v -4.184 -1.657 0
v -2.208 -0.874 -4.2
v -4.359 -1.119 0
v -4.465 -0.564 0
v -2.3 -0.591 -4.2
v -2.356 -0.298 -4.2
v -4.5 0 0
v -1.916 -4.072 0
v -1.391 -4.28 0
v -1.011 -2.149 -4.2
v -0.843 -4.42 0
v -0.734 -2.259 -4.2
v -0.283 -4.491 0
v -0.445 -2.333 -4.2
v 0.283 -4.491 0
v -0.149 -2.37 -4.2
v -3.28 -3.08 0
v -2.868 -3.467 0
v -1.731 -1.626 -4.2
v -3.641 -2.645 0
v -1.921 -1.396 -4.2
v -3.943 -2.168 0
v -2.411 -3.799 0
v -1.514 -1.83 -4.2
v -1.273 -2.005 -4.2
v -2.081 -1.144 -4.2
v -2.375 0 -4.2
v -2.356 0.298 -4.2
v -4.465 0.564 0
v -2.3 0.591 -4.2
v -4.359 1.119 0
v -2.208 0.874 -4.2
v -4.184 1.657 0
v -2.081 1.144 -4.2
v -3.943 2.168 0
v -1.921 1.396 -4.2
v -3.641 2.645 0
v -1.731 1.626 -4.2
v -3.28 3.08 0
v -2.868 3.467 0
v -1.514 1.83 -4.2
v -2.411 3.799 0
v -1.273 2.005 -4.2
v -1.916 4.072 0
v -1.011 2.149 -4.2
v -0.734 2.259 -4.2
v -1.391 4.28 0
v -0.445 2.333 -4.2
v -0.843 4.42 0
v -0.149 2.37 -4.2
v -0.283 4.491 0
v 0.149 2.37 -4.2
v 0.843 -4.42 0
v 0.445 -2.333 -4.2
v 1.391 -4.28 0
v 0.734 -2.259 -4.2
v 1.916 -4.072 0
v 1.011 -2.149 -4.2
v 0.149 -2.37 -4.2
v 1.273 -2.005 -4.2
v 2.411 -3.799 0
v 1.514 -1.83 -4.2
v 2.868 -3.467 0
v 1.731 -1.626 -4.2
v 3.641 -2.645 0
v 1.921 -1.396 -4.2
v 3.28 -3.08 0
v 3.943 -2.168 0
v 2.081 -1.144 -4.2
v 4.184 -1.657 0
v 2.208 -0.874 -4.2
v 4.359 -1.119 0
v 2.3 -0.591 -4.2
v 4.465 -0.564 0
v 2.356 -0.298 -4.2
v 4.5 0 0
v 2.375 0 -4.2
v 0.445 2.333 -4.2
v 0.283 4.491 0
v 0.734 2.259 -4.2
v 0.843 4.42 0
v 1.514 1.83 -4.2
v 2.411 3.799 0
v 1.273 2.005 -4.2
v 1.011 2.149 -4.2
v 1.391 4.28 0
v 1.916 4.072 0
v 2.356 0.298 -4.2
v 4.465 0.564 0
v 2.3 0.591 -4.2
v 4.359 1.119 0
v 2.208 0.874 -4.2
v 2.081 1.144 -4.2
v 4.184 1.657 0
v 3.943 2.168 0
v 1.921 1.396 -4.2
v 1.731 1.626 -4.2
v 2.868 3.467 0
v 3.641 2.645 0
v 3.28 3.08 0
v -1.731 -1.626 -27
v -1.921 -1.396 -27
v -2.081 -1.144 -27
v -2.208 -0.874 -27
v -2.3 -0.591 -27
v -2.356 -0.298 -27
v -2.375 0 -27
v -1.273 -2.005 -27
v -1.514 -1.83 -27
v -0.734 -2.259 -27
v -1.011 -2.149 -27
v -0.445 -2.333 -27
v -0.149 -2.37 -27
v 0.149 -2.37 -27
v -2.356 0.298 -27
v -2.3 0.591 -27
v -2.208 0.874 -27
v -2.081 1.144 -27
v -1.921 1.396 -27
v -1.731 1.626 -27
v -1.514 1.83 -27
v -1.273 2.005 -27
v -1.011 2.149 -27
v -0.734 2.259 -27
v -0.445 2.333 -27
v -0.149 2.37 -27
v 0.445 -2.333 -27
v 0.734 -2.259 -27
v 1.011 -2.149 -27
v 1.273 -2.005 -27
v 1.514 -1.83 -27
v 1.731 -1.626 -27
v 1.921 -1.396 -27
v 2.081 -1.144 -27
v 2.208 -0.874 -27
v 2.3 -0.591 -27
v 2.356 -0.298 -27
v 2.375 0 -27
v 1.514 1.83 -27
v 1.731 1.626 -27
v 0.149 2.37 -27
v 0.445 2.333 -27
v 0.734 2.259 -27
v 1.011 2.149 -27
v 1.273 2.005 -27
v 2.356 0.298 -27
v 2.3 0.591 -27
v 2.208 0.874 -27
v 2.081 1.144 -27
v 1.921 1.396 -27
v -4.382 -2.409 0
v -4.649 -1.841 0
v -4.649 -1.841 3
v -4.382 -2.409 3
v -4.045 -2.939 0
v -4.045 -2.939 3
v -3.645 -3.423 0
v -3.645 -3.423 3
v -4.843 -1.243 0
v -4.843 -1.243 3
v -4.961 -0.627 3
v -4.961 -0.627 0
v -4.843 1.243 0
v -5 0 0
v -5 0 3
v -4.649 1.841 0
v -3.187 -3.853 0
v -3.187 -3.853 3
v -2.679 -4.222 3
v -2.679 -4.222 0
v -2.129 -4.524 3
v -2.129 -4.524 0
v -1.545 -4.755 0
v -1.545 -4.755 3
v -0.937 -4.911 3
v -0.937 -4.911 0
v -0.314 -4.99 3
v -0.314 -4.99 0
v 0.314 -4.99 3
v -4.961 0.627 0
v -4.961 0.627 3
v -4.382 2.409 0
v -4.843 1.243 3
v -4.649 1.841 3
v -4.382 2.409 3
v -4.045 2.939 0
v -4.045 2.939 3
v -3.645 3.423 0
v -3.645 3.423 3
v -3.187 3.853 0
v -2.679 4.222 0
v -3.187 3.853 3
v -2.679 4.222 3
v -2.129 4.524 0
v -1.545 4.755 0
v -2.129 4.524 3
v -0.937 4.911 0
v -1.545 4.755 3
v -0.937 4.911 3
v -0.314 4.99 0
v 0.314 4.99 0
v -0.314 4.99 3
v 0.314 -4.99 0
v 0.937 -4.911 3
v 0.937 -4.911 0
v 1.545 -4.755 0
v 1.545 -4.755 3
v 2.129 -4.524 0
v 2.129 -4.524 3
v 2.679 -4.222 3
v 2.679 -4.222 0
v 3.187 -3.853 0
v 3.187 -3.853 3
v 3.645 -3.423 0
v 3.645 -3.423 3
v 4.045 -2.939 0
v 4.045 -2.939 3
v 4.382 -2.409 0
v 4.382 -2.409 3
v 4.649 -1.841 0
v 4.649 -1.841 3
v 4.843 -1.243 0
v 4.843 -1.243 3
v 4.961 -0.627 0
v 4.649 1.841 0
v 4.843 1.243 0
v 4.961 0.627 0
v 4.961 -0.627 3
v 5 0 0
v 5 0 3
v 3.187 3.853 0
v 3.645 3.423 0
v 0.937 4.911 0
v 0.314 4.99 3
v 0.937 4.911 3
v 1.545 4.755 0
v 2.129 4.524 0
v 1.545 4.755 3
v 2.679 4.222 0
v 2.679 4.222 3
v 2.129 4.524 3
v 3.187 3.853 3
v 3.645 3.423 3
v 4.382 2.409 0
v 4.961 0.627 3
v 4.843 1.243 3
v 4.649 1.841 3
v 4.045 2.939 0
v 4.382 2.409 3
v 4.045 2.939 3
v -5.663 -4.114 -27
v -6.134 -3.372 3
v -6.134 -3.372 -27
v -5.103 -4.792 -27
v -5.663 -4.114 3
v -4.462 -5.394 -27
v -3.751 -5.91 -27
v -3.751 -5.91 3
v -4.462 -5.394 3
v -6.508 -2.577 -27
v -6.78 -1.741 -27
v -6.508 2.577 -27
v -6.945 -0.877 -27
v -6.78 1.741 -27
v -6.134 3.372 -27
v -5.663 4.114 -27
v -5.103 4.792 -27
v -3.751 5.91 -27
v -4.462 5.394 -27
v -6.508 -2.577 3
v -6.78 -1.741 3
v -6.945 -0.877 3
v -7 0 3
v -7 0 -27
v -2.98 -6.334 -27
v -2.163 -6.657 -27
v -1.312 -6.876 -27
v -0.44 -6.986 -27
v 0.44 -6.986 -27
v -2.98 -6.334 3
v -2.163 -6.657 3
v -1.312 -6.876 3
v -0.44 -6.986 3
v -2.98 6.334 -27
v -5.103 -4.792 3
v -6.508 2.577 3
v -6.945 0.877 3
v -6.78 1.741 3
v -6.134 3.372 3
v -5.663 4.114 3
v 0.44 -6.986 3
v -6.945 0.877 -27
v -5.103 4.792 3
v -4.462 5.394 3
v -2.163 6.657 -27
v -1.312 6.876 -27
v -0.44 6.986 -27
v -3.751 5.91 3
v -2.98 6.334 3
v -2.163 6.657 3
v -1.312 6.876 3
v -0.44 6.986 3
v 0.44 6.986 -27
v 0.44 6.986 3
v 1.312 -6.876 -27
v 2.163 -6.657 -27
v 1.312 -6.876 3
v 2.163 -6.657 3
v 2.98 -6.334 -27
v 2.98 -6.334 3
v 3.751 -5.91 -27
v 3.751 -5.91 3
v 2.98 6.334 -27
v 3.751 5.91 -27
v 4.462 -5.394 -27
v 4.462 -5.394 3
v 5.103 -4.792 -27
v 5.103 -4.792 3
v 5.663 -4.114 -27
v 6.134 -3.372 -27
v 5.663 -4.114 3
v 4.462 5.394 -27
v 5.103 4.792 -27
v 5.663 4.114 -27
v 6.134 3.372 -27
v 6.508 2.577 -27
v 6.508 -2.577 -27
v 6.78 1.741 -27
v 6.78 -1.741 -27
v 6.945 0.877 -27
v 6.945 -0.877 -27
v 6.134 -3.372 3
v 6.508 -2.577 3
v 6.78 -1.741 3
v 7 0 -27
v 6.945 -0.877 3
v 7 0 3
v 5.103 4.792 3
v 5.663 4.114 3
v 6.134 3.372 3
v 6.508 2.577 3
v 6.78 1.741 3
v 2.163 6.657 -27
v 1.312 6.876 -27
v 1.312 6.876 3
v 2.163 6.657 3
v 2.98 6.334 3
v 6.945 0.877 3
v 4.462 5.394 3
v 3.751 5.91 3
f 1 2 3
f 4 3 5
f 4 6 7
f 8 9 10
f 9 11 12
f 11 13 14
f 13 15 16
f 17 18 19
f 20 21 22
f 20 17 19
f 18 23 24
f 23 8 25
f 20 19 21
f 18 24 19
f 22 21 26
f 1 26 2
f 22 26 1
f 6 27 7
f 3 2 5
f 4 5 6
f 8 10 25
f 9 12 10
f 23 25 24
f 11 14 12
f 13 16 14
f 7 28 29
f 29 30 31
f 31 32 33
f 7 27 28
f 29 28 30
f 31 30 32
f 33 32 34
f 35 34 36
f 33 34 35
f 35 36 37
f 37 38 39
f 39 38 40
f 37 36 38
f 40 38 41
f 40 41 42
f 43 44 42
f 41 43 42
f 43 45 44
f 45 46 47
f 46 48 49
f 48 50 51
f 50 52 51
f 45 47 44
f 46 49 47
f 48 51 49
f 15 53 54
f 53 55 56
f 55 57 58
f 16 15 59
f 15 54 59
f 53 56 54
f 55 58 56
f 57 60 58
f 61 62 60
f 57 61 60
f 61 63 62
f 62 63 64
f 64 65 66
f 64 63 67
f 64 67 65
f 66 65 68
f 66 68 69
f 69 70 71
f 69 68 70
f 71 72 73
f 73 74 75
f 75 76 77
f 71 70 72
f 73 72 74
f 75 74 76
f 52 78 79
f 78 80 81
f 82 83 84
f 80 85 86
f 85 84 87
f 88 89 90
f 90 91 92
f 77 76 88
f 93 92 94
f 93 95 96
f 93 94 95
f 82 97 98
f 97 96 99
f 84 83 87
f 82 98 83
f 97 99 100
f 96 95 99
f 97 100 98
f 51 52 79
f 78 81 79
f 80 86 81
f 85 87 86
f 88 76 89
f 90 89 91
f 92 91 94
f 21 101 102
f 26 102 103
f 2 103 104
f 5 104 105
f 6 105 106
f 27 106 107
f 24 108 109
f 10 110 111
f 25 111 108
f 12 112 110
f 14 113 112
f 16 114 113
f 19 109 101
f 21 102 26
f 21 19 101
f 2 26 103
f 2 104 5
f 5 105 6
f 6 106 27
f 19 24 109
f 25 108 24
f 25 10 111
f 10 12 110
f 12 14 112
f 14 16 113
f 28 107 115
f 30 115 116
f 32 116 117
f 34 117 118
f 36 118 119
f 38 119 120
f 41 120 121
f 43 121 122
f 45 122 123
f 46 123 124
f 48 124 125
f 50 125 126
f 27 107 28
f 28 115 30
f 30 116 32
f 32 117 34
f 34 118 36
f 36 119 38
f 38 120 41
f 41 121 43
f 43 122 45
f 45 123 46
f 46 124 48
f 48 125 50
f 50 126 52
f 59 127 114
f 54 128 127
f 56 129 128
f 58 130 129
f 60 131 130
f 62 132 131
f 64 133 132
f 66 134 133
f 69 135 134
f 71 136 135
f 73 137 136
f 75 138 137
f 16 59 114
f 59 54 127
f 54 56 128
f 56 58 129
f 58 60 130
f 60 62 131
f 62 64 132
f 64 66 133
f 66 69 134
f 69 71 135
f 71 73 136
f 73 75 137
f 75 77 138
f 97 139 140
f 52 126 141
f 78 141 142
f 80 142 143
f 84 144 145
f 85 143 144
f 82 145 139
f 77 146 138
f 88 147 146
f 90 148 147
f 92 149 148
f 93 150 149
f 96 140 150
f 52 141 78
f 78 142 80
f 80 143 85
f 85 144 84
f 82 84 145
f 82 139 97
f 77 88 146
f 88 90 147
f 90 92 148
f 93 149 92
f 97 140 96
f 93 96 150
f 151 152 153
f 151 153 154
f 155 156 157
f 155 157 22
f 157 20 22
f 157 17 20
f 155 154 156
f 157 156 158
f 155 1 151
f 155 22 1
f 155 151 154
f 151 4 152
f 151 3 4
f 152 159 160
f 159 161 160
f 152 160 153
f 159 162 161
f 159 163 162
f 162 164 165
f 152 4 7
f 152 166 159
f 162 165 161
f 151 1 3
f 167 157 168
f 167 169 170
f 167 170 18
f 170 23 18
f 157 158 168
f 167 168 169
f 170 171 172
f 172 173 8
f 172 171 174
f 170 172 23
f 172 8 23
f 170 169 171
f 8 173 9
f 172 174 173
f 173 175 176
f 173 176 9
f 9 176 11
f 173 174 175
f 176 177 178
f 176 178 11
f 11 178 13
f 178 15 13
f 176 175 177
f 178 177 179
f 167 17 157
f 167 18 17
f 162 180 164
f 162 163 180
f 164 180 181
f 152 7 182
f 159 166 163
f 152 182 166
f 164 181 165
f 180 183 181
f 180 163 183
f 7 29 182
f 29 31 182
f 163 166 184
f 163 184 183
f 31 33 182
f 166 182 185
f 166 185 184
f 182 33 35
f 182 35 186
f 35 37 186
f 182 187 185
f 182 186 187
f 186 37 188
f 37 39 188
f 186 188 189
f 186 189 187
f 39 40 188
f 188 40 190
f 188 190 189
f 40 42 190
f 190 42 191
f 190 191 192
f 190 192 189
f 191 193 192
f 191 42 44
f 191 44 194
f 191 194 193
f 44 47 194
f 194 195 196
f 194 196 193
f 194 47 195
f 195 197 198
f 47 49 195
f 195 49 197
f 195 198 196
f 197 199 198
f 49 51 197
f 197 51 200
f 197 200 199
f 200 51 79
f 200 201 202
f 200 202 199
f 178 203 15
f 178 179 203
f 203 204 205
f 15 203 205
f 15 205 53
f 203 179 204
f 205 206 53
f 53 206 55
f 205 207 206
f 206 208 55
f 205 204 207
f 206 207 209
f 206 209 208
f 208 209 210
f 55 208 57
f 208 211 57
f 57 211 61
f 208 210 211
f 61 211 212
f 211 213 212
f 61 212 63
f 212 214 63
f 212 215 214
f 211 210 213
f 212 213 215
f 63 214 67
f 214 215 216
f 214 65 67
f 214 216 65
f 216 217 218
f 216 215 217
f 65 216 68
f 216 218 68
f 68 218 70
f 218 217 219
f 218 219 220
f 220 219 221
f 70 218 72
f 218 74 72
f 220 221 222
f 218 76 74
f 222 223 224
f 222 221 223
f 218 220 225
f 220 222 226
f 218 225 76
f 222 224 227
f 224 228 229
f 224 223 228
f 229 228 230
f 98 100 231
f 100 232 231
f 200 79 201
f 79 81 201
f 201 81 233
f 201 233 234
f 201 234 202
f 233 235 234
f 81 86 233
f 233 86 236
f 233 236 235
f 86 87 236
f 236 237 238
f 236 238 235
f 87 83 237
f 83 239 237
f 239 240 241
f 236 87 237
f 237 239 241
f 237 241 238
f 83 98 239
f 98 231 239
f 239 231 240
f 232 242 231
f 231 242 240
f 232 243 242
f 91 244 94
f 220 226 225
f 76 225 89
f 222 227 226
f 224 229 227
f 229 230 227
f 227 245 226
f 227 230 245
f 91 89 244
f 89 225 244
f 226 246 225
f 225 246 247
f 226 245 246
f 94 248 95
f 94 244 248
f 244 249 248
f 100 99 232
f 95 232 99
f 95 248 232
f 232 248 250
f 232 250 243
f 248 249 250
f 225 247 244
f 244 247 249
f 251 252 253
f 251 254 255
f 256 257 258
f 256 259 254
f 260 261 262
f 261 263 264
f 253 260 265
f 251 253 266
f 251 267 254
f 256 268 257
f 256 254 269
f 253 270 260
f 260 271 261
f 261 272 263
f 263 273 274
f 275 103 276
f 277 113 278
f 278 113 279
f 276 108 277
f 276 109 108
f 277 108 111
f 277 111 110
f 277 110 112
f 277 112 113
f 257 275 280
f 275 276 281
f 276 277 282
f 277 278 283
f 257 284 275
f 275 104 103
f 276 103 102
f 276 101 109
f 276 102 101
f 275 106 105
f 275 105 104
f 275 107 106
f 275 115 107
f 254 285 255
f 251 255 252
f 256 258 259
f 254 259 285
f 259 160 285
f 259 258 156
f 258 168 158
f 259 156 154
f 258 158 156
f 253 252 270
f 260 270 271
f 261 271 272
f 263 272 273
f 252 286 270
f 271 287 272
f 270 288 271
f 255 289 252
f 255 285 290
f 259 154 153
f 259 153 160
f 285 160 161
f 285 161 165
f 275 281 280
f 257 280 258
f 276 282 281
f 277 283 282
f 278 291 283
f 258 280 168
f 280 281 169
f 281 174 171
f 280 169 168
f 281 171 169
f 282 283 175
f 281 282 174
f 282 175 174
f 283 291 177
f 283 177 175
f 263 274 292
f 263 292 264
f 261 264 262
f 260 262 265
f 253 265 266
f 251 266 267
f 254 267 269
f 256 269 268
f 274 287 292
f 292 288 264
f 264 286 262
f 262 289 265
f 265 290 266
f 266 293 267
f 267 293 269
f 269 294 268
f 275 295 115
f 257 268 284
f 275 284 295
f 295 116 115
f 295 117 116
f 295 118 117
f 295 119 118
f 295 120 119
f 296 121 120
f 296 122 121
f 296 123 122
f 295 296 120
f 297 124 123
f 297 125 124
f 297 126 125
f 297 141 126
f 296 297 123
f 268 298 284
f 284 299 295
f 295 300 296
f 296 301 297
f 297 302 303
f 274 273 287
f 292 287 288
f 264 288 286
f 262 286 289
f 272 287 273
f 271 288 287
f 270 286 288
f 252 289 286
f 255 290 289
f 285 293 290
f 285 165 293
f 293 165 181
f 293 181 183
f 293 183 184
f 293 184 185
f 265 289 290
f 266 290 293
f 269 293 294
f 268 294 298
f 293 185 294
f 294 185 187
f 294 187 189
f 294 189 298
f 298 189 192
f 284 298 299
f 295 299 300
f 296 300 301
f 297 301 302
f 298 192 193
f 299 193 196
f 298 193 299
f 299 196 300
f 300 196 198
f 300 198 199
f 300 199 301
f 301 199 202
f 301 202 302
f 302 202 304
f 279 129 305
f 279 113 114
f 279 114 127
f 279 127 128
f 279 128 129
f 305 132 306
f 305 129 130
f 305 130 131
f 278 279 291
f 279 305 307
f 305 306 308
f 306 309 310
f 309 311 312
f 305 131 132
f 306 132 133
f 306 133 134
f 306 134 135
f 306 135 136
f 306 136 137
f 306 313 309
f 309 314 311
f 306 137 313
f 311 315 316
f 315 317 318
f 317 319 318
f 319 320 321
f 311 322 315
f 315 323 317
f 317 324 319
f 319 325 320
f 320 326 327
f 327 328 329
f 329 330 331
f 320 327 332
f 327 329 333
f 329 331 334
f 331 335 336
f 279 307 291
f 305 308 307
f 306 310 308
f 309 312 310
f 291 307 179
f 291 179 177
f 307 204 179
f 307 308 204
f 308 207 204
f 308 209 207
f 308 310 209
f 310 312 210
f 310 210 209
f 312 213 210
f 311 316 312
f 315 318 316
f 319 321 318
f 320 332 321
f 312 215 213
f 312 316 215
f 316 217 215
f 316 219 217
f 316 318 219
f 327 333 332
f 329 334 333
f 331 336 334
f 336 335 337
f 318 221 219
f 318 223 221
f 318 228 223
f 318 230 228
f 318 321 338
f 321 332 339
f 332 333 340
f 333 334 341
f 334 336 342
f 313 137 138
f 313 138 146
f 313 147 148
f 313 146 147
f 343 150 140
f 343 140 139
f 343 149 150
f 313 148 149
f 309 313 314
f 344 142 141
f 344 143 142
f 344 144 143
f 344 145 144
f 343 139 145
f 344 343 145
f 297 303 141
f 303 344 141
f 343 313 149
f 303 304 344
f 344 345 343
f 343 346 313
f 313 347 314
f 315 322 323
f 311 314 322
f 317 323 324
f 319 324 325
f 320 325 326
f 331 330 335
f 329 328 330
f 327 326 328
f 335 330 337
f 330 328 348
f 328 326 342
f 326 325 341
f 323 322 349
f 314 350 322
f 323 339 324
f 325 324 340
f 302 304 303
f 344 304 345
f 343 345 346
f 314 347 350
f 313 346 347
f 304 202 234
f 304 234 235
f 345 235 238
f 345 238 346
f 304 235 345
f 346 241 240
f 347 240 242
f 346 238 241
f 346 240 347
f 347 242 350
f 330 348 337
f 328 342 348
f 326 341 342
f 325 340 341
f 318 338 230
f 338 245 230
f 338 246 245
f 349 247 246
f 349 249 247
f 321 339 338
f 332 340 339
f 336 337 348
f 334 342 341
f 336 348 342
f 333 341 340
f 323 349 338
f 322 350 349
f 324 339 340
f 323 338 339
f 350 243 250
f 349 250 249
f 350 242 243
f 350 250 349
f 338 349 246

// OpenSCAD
$fn = 50;


difference() {
	union() {
		translate(v = [0, 0, -27.0000000000]) {
			cylinder(h = 30, r = 7.0000000000);
		}
	}
	union() {
		translate(v = [0, 0, 0]) {
			rotate(a = [0, 0, 0]) {
				difference() {
					union() {
						translate(v = [0, 0, -30.0000000000]) {
							cylinder(h = 30, r = 2.2500000000);
						}
						translate(v = [0, 0, -4.2000000000]) {
							cylinder(h = 4.2000000000, r1 = 2.3750000000, r2 = 4.5000000000);
						}
						translate(v = [0, 0, -30.0000000000]) {
							cylinder(h = 30, r = 2.3750000000);
						}
						translate(v = [0, 0, -30.0000000000]) {
							cylinder(h = 30, r = 2.2500000000);
						}
					}
					union();
				}
			}
		}
		#cylinder(h = 3, r = 5.0000000000);
	}
}
